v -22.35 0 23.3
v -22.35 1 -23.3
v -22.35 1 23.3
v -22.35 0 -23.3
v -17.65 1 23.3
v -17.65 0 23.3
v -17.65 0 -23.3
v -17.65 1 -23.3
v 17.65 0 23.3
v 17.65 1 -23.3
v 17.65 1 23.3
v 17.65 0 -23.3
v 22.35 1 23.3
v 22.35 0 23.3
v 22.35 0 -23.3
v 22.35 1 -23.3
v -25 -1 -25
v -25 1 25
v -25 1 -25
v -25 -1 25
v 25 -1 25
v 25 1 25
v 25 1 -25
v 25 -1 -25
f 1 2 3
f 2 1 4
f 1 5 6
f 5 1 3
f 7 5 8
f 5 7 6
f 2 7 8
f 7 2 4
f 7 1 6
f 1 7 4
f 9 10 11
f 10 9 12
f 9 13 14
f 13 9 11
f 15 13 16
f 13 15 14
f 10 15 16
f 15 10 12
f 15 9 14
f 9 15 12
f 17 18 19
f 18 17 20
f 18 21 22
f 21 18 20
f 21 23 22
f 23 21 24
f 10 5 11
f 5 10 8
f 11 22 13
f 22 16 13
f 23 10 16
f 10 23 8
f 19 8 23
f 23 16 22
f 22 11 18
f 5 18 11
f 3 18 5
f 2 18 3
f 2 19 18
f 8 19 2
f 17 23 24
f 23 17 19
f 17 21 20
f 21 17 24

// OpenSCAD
// file: ../modules/roundedcube.scad
// More information: https://danielupshaw.com/openscad-rounded-corners/


// Examples
// color("Yellow")
// roundedcube(3, true, 0.7, "xmin");

// translate(v = [1, 0, 2])
// color("Pink")
// roundedcube([4, 2, 2], false, 0.6, "zmax");

// translate(v = [-4, -1, 2])
// color("Lightblue")
// roundedcube(2, false);

// translate(v = [0, 0, 6])
// color("Orange")
// roundedcube([3, 2, 2], true, 0.2);

// translate(v = [2.5, -0.5, 5])
// color("Green")
// roundedcube([3, 2, 2], false, 0.4, "z");

// Set to 0.01 for higher definition curves (renders slower)
$fs = 0.15;

module roundedcube(size = [1, 1, 1], center = false, radius = 0.5, apply_to = "all") {
	// If single value, convert to [x, y, z] vector
	size = (size[0] == undef) ? [size, size, size] : size;

	translate_min = radius;
	translate_xmax = size[0] - radius;
	translate_ymax = size[1] - radius;
	translate_zmax = size[2] - radius;

	diameter = radius * 2;

	obj_translate = (center == false) ?
		[0, 0, 0] : [
			-(size[0] / 2),
			-(size[1] / 2),
			-(size[2] / 2)
		];

	translate(v = obj_translate) {
		hull() {
			for (translate_x = [translate_min, translate_xmax]) {
				x_at = (translate_x == translate_min) ? "min" : "max";
				for (translate_y = [translate_min, translate_ymax]) {
					y_at = (translate_y == translate_min) ? "min" : "max";
					for (translate_z = [translate_min, translate_zmax]) {
						z_at = (translate_z == translate_min) ? "min" : "max";

						translate(v = [translate_x, translate_y, translate_z])
						if (
							(apply_to == "all") ||
							(apply_to == "xmin" && x_at == "min") || (apply_to == "xmax" && x_at == "max") ||
							(apply_to == "ymin" && y_at == "min") || (apply_to == "ymax" && y_at == "max") ||
							(apply_to == "zmin" && z_at == "min") || (apply_to == "zmax" && z_at == "max")
						) {
							sphere(r = radius);
						} else {
							rotate = 
								(apply_to == "xmin" || apply_to == "xmax" || apply_to == "x") ? [0, 90, 0] : (
								(apply_to == "ymin" || apply_to == "ymax" || apply_to == "y") ? [90, 90, 0] :
								[0, 0, 0]
							);
							rotate(a = rotate)
							cylinder(h = diameter, r = radius, center = true);
						}
					}
				}
			}
		}
	}
}
// file: IKEA Skadis v2 hook cutouts.scad
skadis_hook_width = 4.5;
skadis_hook_height = 46;
skadis_hole_spacing_width = 40; // middle to middle
cutout_tolerance_w = 0.2;
cutout_tolerance_h = 0.6;


module skadis_hook_cutout(center=false, hook_count=2) {
    
    if(center) {
        translate([-(skadis_hole_spacing_width + skadis_hook_width) / 2, 0, - skadis_hook_height / 2])
        object(hook_count);
    } else {
        object();
    }
    

}

module object(hook_count=2) {
    union() {

        // Cutout for the hook 1
        color("red")
        translate([- cutout_tolerance_w / 2, 0, - cutout_tolerance_h / 2])
        cube([skadis_hook_width + cutout_tolerance_w, 2, skadis_hook_height + cutout_tolerance_h]);

        // Cutout for the hook 2
        color("red")
        translate([- cutout_tolerance_w / 2 + skadis_hole_spacing_width, 0, - cutout_tolerance_h / 2])
        cube([skadis_hook_width + cutout_tolerance_w, 2, skadis_hook_height + cutout_tolerance_h]);

    }
}

skadis_hook_cutout(center = false);
// file: IKEA Skadis v2 hook.scad
$fn=20;

sh_height=43;
sh_width=4.5;
sh_hanger_spacing=5.5;
sh_material_size=2;
sh_short_tail=4;
sh_corner_radius = 0.8;

use <../modules/roundedcube.scad>

module ikea_skadis_holder() {
    difference() {
        union() {
            
            //Vertical wall
            color("green")
            roundedcube(size = [sh_width,sh_material_size,sh_height], center = false, radius = sh_corner_radius, apply_to = "ymax");
            //cube([sh_width,sh_material_size,sh_height]);
            
            // Retainer
            color("blue")
            translate([0,0,sh_height-sh_hanger_spacing])
            roundedcube(size = [sh_width, sh_hanger_spacing + sh_material_size * 2 + 1, sh_hanger_spacing + 3], center = false, radius = sh_corner_radius, apply_to = "ymax");

            //Vertical wall connection (short)
            color("cyan")
            translate([0, sh_hanger_spacing + sh_material_size , sh_height - sh_hanger_spacing])
            roundedcube(size = [sh_width, sh_material_size + 1, 2], center = false, radius = sh_corner_radius, apply_to = "z");

            //Vertical wall (short)
            color("cyan")
            translate([0, sh_hanger_spacing + sh_material_size , sh_height - sh_short_tail - sh_hanger_spacing])
            //cube([sh_width,sh_material_size+1,sh_short_tail]);
            roundedcube(size = [sh_width, sh_material_size + 1, sh_short_tail], center = false, radius = sh_corner_radius, apply_to = "zmin");

            //Schnöpsel
            color("yellow")
            translate([0, sh_material_size - 2, 0])
            roundedcube(size = [sh_width, sh_hanger_spacing + 2, 8], center = false, radius = sh_corner_radius + 0.8, apply_to = "ymax");

            //Schnöpsel - Angleichen des unteren radius
            color("yellow")
            translate([0, sh_material_size - 2, 0])
            roundedcube(size = [sh_width, sh_hanger_spacing + 2, 7], center = false, radius = sh_corner_radius, apply_to = "ymax");

        }
        
        
    color("red")
    translate([-1,sh_material_size+sh_hanger_spacing/2,sh_height-sh_hanger_spacing])
    rotate([0,90,0])
    cylinder(sh_width+2, sh_hanger_spacing/2, sh_hanger_spacing/2);
        
    }
}
//color("Yellow")
ikea_skadis_holder();
// main file
$fn=100;

use <./IKEA Skadis v2 hook.scad>
use <./IKEA Skadis v2 hook cutouts.scad>

module ikea_skadis_backwall(_w, _h) {
    
    _w = _w >= 50  ? _w : 50;
    _h = _h >= 50  ? _h : 50;

    difference() {
        // backwall
        cube([_w, 2, _h], center = true);

       translate([0, 0, 0])
        skadis_hook_cutout(center=true);
    }


}

ikea_skadis_backwall(50, 50);
